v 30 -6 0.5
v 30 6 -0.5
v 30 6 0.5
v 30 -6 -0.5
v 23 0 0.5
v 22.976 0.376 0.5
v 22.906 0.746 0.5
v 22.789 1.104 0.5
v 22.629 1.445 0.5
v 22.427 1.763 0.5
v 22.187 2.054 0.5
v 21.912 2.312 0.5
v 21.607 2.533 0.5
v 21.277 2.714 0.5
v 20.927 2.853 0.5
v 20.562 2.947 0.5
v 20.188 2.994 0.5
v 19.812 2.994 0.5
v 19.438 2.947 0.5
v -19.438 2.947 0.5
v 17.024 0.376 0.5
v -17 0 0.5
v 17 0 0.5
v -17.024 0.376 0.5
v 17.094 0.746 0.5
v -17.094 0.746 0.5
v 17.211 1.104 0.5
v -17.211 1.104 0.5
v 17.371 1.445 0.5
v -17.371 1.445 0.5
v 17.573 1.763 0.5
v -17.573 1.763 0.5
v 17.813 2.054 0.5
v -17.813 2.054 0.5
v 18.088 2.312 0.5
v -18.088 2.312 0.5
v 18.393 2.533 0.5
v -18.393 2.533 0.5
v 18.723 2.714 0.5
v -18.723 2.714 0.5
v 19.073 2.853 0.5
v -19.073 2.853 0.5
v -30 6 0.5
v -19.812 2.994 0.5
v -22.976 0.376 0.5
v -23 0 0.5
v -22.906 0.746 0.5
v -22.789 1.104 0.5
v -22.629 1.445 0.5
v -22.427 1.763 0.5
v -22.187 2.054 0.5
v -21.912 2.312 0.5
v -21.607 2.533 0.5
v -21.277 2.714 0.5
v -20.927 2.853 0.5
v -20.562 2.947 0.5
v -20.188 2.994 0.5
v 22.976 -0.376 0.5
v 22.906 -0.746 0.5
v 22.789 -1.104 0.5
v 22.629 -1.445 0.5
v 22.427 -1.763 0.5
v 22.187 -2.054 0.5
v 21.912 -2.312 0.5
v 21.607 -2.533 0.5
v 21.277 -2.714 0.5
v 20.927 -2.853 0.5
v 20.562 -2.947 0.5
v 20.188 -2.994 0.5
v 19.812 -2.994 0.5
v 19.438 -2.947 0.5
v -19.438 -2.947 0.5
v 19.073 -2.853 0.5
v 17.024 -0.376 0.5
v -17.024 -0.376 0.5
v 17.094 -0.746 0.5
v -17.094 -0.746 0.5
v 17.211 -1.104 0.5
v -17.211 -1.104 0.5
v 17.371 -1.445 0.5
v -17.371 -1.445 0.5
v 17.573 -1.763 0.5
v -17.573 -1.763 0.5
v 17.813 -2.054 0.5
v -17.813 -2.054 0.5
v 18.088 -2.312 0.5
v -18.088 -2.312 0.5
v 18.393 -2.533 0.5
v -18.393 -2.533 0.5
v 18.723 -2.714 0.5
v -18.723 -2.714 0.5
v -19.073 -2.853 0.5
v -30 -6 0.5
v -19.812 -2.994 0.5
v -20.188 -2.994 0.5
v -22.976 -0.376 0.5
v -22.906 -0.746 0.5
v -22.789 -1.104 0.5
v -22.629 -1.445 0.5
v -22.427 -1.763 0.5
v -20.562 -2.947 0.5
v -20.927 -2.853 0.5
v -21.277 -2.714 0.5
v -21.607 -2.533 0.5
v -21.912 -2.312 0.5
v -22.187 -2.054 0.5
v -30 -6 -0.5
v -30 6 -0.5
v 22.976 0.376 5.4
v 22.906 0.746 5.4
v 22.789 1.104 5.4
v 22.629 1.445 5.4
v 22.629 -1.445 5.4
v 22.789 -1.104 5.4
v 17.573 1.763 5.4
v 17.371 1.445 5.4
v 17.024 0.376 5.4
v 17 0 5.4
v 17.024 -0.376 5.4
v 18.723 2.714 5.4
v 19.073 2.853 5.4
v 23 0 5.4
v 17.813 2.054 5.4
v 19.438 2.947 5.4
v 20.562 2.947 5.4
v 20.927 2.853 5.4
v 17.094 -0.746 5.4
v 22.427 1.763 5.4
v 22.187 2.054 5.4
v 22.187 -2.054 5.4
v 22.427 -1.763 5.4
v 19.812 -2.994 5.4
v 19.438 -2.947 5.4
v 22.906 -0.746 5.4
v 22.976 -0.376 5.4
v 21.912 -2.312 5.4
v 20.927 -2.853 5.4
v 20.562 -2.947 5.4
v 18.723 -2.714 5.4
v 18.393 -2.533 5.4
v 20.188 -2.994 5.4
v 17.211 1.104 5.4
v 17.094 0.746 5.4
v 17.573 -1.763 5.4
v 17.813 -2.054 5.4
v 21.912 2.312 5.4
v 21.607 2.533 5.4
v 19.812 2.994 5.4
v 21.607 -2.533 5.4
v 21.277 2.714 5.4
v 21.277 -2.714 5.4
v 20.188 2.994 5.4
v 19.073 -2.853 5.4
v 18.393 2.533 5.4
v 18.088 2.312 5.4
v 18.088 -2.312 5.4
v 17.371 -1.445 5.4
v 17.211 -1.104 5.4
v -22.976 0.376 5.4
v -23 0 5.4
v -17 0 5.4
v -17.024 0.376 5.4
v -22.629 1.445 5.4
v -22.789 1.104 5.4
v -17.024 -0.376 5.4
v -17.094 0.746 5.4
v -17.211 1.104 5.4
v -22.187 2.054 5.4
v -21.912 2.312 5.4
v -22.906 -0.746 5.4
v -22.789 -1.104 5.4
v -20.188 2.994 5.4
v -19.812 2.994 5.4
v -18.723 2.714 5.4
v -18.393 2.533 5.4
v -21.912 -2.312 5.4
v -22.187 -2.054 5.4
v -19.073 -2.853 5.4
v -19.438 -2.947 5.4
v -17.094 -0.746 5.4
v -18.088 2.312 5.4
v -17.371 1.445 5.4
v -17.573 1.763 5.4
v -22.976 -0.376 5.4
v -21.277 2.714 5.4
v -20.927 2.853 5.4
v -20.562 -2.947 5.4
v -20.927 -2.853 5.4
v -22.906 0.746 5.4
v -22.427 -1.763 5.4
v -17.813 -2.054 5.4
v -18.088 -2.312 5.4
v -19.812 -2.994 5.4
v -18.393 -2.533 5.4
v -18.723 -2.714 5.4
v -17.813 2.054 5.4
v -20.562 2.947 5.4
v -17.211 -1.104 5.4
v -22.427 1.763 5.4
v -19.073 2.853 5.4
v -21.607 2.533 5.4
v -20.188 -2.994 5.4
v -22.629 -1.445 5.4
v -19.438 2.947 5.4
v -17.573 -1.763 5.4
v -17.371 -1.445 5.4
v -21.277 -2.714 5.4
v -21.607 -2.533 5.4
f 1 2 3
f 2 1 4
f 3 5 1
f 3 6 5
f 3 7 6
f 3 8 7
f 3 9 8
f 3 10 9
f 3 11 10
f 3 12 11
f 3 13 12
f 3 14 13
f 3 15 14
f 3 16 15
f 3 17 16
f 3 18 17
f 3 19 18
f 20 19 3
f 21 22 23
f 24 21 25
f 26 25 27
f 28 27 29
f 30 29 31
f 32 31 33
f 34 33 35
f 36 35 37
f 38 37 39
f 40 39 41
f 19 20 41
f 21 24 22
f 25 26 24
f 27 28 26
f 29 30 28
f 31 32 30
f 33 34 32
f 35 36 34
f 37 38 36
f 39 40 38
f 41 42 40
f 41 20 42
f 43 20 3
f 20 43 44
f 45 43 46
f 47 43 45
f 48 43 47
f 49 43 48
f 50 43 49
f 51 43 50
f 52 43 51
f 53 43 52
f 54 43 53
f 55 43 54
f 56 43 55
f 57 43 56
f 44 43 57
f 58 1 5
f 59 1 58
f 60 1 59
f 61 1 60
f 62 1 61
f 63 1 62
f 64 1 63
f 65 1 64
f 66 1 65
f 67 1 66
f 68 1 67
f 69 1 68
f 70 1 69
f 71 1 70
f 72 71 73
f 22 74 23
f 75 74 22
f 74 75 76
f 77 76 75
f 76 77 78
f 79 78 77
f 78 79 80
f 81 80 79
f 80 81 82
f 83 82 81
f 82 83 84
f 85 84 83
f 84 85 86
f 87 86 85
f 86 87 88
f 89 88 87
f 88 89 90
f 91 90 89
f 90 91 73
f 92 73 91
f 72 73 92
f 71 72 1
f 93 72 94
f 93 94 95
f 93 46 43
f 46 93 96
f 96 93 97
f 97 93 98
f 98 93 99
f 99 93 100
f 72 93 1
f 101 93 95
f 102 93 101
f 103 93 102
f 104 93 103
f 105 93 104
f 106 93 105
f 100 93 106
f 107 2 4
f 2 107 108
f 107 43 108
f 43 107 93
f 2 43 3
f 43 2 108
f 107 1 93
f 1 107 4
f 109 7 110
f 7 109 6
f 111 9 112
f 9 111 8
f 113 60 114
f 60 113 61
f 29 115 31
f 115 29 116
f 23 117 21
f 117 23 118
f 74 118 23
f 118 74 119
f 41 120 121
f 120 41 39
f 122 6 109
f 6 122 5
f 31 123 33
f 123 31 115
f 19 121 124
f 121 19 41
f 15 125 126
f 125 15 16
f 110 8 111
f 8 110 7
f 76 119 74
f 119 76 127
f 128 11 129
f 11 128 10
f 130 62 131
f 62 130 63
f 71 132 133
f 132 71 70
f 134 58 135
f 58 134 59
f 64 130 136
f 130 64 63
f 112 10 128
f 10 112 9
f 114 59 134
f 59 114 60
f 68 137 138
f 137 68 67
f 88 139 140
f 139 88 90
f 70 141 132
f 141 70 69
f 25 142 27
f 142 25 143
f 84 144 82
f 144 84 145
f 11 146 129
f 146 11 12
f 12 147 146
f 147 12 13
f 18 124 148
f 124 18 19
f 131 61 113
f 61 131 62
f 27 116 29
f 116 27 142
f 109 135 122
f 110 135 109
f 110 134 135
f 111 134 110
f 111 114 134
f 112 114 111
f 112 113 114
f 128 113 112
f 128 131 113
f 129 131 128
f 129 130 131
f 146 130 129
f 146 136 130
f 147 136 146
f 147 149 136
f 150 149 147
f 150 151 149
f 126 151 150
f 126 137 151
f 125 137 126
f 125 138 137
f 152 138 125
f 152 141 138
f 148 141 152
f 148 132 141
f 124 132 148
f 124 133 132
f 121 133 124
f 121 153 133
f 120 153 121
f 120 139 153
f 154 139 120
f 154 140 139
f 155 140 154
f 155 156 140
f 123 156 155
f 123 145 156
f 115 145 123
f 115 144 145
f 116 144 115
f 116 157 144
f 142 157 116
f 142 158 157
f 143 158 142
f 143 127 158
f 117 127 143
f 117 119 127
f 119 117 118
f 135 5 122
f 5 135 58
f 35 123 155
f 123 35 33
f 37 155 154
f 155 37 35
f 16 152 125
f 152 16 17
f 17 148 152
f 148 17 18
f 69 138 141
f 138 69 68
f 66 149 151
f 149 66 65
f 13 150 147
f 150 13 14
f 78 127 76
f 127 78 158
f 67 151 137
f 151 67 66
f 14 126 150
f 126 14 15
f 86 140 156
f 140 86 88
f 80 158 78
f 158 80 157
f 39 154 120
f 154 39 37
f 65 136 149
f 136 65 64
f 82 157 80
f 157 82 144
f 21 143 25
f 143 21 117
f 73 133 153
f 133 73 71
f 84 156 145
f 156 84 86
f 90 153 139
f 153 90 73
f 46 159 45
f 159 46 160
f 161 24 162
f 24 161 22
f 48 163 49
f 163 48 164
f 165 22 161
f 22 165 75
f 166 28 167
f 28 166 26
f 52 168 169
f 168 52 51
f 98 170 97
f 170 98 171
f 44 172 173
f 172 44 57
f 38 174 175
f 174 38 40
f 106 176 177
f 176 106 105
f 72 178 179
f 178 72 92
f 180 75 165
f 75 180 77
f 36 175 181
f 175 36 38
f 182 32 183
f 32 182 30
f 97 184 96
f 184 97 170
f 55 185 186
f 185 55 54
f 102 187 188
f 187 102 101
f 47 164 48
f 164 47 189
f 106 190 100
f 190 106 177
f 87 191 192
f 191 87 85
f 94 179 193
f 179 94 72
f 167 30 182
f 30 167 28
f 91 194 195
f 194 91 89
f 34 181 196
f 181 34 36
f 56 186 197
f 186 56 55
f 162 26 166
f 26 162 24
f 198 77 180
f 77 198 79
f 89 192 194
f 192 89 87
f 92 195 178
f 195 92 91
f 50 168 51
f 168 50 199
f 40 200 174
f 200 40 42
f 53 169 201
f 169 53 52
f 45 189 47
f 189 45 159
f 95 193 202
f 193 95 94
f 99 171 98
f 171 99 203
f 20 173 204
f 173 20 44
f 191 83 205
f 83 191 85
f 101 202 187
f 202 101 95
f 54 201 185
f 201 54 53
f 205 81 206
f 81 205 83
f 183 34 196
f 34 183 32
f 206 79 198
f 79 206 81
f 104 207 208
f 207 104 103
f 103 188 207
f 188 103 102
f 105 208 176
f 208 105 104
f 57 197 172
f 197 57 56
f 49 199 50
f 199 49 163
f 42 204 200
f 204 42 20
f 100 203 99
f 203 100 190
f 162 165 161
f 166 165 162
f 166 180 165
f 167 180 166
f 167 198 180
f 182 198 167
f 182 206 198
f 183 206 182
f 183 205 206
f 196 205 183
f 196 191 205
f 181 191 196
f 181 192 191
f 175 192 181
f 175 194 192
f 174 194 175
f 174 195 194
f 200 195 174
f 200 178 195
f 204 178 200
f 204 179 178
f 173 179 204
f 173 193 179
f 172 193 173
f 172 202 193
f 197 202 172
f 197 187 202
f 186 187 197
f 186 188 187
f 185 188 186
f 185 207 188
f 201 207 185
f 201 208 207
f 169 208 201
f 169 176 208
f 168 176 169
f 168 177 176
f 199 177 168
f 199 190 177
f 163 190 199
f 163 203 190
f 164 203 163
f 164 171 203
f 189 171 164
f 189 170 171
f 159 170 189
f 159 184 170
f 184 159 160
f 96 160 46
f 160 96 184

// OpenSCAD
$fn=50;
hole_d = 6;
distance = 40;
height = 5;
thickness = 1;

cube([distance*1.5, hole_d*2, thickness], center=true);

translate([distance/2, 0, height/2+thickness/2-0.1])
cylinder(h=height, d=hole_d, center=true);

translate([-distance/2, 0, height/2+thickness/2-0.1])
cylinder(h=height, d=hole_d, center=true);
